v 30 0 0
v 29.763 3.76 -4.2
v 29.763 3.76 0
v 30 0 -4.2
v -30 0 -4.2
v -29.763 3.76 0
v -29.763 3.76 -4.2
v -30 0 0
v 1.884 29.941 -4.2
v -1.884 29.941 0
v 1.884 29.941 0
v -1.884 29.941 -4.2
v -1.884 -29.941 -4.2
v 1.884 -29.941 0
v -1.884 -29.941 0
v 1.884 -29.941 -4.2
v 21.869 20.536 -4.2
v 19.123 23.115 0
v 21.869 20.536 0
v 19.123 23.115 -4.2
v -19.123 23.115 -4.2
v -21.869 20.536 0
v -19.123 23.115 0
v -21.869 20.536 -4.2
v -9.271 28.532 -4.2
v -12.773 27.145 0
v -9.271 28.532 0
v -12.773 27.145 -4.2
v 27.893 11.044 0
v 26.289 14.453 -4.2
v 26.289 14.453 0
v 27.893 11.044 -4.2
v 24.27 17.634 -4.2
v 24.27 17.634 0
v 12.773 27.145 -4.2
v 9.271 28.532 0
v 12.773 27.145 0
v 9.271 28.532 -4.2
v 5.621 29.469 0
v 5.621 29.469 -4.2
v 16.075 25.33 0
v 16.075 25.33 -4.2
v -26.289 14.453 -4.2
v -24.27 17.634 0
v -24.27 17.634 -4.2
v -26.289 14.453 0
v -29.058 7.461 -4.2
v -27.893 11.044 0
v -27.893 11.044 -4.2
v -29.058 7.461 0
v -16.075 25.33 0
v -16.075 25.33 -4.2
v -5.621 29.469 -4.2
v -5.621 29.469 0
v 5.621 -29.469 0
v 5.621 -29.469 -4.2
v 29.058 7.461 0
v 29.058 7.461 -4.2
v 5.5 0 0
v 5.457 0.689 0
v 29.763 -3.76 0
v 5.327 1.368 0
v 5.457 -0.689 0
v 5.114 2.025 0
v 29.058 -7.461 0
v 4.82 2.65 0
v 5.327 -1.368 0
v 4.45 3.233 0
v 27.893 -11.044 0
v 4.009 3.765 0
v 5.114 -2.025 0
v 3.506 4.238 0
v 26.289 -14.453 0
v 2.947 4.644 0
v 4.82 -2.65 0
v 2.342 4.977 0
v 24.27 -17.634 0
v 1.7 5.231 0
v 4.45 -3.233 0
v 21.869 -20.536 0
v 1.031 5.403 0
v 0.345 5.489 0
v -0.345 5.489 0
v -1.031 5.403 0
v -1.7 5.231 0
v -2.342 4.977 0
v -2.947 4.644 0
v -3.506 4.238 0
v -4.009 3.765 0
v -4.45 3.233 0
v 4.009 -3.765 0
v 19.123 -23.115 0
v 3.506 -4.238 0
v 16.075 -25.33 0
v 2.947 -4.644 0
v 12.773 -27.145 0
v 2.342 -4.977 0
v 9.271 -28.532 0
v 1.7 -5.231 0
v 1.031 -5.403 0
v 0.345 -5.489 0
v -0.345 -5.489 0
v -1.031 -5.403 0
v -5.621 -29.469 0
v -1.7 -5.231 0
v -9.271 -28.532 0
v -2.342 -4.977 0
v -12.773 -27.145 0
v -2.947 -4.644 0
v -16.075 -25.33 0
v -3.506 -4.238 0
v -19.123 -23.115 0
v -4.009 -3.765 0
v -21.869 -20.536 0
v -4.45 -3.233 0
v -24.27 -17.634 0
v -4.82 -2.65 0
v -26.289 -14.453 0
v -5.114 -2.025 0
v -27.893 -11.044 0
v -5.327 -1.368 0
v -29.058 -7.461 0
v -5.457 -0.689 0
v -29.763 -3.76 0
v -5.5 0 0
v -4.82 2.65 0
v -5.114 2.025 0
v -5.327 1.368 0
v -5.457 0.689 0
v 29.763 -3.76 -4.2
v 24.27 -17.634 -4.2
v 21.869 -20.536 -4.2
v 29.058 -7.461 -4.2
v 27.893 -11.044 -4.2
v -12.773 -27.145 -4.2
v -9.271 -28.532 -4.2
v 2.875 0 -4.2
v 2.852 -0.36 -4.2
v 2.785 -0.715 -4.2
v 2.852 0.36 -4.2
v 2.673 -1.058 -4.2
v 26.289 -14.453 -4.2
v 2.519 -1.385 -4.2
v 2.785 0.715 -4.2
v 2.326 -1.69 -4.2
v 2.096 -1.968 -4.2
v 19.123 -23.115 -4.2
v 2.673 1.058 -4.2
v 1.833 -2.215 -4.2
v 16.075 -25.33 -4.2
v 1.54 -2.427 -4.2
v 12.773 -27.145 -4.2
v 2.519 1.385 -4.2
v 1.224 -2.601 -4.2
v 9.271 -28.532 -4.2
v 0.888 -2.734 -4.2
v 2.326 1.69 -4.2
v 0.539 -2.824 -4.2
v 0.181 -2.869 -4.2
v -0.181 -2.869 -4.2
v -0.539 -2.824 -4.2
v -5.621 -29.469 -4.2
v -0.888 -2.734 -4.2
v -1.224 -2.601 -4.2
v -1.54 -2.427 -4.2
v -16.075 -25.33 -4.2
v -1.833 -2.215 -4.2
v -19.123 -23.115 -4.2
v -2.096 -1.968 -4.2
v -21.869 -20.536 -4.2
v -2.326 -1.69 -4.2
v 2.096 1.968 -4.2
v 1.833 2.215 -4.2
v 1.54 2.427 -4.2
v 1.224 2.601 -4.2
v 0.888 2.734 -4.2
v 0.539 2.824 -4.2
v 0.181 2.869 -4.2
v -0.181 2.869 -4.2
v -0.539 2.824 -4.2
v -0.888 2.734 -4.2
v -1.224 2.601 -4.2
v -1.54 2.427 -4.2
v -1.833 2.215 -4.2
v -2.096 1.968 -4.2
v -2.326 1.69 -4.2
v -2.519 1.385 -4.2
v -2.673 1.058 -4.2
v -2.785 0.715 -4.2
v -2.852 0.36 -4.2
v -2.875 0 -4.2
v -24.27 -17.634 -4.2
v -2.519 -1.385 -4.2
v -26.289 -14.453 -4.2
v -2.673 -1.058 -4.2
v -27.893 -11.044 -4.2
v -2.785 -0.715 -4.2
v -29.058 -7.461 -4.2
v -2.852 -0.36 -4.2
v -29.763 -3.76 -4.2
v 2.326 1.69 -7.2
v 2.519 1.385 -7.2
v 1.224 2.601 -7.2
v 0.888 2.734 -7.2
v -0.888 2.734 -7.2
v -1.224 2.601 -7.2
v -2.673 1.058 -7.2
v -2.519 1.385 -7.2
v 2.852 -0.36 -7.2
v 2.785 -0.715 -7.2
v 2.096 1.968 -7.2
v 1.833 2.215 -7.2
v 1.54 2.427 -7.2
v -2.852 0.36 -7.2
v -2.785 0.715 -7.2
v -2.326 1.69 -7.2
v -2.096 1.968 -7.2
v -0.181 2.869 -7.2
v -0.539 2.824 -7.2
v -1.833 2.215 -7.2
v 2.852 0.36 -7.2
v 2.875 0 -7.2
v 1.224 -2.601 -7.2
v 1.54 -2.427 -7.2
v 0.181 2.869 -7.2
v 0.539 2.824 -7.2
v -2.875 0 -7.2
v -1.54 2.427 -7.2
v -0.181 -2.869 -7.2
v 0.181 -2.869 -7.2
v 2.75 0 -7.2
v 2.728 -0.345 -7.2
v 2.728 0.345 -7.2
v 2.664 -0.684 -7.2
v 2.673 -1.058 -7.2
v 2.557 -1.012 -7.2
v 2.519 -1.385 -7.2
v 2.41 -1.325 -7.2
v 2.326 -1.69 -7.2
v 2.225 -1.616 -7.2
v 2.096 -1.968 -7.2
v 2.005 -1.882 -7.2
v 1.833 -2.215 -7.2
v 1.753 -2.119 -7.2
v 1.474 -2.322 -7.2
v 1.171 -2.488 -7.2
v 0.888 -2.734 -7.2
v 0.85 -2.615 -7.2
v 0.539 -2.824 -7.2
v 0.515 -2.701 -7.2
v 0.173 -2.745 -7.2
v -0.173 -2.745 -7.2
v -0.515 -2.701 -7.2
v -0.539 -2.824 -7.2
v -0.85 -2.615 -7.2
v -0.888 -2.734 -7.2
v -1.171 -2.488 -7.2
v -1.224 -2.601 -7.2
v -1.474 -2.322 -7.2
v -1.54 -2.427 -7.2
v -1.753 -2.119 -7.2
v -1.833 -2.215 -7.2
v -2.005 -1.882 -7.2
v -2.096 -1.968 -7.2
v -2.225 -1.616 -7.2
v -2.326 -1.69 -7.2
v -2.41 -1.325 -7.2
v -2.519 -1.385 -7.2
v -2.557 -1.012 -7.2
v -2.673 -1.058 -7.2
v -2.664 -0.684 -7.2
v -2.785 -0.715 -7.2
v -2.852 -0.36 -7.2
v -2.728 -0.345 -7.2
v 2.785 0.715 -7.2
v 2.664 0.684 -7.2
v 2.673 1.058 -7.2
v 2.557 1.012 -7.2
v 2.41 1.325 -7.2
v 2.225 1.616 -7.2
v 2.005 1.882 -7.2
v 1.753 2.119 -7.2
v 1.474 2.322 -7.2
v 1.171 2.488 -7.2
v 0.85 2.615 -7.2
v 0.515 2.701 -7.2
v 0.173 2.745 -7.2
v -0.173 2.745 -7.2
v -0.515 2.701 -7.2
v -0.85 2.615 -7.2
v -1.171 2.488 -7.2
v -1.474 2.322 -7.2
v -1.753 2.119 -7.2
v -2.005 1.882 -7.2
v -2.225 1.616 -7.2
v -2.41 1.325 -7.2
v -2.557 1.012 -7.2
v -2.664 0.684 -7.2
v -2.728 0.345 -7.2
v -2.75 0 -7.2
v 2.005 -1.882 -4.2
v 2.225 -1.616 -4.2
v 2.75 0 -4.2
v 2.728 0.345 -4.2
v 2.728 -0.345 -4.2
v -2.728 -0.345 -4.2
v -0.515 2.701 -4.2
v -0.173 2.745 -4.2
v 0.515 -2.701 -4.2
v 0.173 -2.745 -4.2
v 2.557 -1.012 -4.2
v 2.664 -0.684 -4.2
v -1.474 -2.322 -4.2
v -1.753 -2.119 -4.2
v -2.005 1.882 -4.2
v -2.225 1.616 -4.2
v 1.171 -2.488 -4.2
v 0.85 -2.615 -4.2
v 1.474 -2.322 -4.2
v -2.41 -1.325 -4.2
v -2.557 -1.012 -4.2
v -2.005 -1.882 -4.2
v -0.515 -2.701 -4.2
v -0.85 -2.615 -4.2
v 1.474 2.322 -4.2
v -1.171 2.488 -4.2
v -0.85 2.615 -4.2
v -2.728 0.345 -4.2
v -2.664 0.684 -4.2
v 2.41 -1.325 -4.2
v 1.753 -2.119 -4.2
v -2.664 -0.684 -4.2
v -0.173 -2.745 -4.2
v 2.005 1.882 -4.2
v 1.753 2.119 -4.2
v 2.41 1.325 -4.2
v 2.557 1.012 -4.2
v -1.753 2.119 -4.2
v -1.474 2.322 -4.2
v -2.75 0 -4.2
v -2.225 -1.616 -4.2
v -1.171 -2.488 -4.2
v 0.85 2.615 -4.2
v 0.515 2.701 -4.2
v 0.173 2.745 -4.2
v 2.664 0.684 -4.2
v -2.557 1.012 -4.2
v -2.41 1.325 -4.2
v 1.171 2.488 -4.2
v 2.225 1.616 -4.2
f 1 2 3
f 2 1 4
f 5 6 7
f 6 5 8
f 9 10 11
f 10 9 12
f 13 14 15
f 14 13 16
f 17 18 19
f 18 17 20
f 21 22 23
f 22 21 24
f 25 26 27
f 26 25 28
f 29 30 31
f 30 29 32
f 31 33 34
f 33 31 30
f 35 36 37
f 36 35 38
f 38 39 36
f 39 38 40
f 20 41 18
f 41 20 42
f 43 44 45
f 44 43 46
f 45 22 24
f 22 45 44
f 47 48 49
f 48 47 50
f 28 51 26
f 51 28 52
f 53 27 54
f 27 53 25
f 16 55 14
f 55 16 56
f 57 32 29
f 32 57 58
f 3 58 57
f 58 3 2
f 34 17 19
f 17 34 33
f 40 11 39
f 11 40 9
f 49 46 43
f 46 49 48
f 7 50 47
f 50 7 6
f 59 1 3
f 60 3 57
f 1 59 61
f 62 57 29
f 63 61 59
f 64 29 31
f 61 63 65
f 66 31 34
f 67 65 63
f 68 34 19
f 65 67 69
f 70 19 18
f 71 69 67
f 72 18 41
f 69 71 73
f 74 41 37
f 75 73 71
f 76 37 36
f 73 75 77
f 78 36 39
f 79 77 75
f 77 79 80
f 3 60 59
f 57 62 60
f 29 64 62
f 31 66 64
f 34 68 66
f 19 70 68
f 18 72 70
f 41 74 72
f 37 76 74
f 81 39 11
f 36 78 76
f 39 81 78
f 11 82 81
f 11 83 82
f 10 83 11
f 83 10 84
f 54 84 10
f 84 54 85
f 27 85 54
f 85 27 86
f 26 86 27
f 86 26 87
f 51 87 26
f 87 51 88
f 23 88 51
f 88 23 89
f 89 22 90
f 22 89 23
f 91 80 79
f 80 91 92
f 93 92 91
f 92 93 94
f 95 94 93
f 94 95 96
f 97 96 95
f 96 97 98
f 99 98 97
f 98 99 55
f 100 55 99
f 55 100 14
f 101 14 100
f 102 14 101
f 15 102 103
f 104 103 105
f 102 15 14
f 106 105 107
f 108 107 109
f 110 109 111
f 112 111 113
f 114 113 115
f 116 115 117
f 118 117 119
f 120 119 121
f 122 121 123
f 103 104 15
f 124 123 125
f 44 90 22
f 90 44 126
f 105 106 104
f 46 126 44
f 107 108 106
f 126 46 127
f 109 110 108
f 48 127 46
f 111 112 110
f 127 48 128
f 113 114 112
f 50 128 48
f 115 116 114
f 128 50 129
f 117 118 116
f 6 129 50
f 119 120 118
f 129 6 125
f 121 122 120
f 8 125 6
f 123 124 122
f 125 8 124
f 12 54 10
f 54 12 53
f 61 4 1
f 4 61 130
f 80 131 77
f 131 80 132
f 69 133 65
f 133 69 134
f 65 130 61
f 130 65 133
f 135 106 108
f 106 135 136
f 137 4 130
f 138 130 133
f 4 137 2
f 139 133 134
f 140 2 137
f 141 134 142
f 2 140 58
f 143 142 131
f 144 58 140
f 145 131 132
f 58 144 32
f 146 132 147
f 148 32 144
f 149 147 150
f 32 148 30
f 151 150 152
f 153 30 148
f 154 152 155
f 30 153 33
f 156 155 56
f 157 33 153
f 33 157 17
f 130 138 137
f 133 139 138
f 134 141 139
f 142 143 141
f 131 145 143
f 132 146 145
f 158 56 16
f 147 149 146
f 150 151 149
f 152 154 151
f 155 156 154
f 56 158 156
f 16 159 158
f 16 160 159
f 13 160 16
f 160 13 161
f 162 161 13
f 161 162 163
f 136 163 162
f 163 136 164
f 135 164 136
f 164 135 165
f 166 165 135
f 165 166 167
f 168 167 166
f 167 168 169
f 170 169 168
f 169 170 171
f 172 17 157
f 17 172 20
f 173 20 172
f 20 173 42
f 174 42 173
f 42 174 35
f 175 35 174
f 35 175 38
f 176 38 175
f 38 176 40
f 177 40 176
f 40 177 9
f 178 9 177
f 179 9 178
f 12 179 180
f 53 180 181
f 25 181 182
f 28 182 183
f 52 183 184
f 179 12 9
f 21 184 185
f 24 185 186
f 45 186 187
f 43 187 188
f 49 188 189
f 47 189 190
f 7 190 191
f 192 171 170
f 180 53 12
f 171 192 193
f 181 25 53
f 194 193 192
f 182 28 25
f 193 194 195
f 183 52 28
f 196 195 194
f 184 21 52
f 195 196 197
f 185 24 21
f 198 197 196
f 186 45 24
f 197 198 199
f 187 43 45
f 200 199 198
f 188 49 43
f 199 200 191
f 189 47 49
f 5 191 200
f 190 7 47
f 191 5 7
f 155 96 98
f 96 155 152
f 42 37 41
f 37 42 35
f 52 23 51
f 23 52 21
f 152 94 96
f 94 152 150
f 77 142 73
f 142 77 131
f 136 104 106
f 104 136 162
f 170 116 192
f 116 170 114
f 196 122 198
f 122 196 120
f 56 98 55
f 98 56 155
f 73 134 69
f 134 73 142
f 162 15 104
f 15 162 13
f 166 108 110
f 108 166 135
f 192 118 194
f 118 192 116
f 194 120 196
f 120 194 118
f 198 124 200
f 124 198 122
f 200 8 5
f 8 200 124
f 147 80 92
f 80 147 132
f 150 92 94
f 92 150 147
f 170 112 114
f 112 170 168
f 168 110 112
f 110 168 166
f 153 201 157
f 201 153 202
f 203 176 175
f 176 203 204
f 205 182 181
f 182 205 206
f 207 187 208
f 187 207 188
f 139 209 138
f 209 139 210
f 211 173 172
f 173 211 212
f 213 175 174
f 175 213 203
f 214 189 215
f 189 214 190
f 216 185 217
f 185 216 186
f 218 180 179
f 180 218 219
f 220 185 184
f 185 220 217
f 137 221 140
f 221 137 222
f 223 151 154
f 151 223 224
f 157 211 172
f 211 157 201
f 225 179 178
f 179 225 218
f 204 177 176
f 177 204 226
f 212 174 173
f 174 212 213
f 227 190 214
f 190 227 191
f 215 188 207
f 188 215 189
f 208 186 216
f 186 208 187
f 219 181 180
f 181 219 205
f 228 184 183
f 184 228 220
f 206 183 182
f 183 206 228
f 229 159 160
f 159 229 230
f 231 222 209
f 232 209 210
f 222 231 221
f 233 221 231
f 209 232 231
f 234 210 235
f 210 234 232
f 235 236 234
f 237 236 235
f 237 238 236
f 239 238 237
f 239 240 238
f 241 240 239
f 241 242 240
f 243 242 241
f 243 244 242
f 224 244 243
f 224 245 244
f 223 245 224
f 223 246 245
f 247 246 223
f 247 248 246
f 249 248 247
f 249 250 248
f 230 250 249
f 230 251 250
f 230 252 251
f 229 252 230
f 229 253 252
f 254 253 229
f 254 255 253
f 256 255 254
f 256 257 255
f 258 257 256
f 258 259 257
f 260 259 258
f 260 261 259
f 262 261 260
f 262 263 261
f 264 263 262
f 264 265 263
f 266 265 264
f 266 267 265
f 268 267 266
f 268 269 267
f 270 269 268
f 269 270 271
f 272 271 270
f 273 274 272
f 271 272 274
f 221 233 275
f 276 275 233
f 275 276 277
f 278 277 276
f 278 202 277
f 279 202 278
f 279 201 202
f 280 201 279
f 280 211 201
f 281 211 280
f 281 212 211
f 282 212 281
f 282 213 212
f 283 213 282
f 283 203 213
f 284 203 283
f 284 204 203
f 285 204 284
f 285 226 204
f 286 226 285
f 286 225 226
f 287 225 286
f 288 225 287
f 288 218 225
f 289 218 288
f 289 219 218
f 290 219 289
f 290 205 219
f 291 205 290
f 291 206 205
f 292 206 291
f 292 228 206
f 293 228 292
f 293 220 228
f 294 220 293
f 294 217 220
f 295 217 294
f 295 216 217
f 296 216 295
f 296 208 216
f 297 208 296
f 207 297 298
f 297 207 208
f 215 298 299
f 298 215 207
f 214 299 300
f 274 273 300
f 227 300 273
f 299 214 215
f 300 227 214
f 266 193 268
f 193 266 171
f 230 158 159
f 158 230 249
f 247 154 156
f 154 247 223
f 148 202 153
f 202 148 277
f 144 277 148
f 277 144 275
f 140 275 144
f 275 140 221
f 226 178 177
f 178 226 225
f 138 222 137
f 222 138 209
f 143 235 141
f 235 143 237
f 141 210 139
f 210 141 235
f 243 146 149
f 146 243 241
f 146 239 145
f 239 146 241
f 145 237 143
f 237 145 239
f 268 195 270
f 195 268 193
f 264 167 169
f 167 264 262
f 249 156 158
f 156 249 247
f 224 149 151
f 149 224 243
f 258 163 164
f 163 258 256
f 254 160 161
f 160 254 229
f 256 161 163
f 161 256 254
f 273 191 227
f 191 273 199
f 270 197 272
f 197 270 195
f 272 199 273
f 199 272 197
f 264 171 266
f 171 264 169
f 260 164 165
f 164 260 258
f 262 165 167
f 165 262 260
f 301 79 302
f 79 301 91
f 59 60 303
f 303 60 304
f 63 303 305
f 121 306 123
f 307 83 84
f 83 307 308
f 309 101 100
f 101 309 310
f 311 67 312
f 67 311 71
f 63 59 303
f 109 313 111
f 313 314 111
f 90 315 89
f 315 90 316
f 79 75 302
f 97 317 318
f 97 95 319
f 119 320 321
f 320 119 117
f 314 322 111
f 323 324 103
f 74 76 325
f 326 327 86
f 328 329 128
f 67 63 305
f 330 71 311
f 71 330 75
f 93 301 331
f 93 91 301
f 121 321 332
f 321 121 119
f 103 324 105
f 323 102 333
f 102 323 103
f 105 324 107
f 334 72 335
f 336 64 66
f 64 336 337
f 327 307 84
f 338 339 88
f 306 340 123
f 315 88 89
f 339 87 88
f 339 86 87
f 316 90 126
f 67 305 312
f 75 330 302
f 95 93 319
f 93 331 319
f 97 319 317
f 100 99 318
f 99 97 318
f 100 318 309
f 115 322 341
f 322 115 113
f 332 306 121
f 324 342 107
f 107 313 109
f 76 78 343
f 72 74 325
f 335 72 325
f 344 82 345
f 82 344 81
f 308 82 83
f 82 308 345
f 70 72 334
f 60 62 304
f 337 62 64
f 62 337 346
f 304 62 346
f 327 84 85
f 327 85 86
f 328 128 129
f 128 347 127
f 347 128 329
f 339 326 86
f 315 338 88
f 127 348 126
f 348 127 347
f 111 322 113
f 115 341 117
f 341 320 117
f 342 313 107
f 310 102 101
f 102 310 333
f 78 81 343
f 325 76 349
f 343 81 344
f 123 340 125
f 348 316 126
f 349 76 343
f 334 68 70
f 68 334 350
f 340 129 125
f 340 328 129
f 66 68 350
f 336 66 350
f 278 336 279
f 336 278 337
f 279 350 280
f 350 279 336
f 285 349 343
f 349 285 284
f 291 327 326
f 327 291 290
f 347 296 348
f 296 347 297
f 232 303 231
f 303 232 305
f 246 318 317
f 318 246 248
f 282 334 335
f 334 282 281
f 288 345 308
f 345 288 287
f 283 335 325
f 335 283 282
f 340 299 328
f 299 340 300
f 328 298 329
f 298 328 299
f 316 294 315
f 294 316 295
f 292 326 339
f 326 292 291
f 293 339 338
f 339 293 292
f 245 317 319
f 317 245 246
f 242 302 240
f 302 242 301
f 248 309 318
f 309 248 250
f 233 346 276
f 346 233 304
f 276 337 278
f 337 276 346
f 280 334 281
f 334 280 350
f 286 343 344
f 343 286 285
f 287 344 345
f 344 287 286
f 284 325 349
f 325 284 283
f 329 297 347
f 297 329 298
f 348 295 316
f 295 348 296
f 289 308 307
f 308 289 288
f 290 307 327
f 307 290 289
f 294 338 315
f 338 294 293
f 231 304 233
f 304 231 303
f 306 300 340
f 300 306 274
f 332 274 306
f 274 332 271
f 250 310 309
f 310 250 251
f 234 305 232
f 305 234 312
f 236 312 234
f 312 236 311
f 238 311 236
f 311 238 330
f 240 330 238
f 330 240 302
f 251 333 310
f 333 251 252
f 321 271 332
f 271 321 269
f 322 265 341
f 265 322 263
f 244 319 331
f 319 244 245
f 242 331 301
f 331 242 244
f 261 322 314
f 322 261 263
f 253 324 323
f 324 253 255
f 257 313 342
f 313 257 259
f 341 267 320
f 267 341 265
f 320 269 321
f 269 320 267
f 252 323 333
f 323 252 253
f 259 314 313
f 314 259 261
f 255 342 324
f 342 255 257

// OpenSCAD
$fn = 50;

difference() {
	union() {
		translate(v = [0, 0, -4.2]) {
			cylinder(h = 4.2, r = 30.0);
		}
		#translate(v = [0, 0, -7.2]) {
			cylinder(h = 7.2, r = 2.875);
		}
	}
	union() {
		translate(v = [0, 0, 0]) {
			rotate(a = [0, 0, 0]) {
				difference() {
					union() {
						translate(v = [0, 0, -7.2]) {
							cylinder(h = 7.2, r = 2.25);
						}
						translate(v = [0, 0, -4.2]) {
							cylinder(h = 4.2, r1 = 2.75, r2 = 5.5);
						}
						translate(v = [0, 0, -7.2]) {
							cylinder(h = 7.2, r = 2.75);
						}
						translate(v = [0, 0, -7.2]) {
							cylinder(h = 7.2, r = 2.25);
						}
					}
					union();
				}
			}
		}
	}
}
